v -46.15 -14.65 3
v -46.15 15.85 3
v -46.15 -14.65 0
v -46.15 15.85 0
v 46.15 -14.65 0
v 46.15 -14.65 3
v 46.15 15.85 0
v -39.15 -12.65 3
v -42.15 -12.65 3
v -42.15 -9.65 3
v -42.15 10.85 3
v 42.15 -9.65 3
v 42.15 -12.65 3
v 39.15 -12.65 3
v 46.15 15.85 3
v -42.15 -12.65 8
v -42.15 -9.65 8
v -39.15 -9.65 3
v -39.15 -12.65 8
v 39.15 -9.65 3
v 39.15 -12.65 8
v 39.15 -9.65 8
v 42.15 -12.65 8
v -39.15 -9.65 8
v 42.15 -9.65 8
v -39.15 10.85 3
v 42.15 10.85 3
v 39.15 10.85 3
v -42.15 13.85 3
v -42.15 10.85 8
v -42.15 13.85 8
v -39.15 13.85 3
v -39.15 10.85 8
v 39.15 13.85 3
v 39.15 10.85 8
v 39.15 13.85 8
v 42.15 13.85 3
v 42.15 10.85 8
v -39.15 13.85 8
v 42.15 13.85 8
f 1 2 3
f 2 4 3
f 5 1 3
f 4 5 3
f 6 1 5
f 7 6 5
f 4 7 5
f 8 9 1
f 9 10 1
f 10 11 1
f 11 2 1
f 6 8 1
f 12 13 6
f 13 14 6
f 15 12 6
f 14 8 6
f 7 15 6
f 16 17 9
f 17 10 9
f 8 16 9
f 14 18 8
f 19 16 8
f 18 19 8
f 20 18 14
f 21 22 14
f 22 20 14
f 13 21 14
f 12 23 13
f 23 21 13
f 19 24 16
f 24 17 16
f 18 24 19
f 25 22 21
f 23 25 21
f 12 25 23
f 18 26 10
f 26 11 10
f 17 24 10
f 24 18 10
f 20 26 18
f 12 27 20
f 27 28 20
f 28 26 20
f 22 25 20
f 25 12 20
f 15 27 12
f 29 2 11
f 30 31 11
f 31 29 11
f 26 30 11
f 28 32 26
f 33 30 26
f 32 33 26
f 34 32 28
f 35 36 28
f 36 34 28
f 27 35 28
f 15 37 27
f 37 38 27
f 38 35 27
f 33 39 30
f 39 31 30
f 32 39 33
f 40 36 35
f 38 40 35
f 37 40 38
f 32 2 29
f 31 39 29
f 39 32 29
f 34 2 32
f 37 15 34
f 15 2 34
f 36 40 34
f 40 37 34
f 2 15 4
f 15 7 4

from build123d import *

# Parameters (mm, degrees)
SKETCH1_W           = 92.3
SKETCH1_H           = 30.5
SKETCH1_W_2         = 84.3
SKETCH1_H_2         = 26.5
BOSS_EXTRUDE1_DEPTH = 3
SKETCH2_W           = 3
SKETCH2_H           = 3
BOSS_EXTRUDE2_DEPTH = 5


with BuildPart() as part:
    # Sketch1 → Boss-Extrude1 (new body)
    # profile 1 of 2: a face of its own
    with BuildSketch(Plane.XY):
        with Locations((0, 0.6)):
            Rectangle(SKETCH1_W, SKETCH1_H)
        with Locations((0, 0.6)):
            Rectangle(SKETCH1_W_2, SKETCH1_H_2, mode=Mode.SUBTRACT)
    # profile 2 of 2: a face of its own
    with BuildSketch(Plane.XY):
        with Locations((0, 0.6)):
            Rectangle(SKETCH1_W_2, SKETCH1_H_2)
    extrude(amount=BOSS_EXTRUDE1_DEPTH)

    # Sketch2 → Boss-Extrude2 (add)
    with BuildSketch(Plane.XY.offset(3)):
        with Locations((-40.65, 12.35)):
            Rectangle(SKETCH2_W, SKETCH2_H)
        with Locations((40.65, 12.35)):
            Rectangle(SKETCH2_W, SKETCH2_H)
        with Locations((40.65, -11.15)):
            Rectangle(SKETCH2_W, SKETCH2_H)
        with Locations((-40.65, -11.15)):
            Rectangle(SKETCH2_W, SKETCH2_H)
    extrude(amount=BOSS_EXTRUDE2_DEPTH)


solid = part.part
